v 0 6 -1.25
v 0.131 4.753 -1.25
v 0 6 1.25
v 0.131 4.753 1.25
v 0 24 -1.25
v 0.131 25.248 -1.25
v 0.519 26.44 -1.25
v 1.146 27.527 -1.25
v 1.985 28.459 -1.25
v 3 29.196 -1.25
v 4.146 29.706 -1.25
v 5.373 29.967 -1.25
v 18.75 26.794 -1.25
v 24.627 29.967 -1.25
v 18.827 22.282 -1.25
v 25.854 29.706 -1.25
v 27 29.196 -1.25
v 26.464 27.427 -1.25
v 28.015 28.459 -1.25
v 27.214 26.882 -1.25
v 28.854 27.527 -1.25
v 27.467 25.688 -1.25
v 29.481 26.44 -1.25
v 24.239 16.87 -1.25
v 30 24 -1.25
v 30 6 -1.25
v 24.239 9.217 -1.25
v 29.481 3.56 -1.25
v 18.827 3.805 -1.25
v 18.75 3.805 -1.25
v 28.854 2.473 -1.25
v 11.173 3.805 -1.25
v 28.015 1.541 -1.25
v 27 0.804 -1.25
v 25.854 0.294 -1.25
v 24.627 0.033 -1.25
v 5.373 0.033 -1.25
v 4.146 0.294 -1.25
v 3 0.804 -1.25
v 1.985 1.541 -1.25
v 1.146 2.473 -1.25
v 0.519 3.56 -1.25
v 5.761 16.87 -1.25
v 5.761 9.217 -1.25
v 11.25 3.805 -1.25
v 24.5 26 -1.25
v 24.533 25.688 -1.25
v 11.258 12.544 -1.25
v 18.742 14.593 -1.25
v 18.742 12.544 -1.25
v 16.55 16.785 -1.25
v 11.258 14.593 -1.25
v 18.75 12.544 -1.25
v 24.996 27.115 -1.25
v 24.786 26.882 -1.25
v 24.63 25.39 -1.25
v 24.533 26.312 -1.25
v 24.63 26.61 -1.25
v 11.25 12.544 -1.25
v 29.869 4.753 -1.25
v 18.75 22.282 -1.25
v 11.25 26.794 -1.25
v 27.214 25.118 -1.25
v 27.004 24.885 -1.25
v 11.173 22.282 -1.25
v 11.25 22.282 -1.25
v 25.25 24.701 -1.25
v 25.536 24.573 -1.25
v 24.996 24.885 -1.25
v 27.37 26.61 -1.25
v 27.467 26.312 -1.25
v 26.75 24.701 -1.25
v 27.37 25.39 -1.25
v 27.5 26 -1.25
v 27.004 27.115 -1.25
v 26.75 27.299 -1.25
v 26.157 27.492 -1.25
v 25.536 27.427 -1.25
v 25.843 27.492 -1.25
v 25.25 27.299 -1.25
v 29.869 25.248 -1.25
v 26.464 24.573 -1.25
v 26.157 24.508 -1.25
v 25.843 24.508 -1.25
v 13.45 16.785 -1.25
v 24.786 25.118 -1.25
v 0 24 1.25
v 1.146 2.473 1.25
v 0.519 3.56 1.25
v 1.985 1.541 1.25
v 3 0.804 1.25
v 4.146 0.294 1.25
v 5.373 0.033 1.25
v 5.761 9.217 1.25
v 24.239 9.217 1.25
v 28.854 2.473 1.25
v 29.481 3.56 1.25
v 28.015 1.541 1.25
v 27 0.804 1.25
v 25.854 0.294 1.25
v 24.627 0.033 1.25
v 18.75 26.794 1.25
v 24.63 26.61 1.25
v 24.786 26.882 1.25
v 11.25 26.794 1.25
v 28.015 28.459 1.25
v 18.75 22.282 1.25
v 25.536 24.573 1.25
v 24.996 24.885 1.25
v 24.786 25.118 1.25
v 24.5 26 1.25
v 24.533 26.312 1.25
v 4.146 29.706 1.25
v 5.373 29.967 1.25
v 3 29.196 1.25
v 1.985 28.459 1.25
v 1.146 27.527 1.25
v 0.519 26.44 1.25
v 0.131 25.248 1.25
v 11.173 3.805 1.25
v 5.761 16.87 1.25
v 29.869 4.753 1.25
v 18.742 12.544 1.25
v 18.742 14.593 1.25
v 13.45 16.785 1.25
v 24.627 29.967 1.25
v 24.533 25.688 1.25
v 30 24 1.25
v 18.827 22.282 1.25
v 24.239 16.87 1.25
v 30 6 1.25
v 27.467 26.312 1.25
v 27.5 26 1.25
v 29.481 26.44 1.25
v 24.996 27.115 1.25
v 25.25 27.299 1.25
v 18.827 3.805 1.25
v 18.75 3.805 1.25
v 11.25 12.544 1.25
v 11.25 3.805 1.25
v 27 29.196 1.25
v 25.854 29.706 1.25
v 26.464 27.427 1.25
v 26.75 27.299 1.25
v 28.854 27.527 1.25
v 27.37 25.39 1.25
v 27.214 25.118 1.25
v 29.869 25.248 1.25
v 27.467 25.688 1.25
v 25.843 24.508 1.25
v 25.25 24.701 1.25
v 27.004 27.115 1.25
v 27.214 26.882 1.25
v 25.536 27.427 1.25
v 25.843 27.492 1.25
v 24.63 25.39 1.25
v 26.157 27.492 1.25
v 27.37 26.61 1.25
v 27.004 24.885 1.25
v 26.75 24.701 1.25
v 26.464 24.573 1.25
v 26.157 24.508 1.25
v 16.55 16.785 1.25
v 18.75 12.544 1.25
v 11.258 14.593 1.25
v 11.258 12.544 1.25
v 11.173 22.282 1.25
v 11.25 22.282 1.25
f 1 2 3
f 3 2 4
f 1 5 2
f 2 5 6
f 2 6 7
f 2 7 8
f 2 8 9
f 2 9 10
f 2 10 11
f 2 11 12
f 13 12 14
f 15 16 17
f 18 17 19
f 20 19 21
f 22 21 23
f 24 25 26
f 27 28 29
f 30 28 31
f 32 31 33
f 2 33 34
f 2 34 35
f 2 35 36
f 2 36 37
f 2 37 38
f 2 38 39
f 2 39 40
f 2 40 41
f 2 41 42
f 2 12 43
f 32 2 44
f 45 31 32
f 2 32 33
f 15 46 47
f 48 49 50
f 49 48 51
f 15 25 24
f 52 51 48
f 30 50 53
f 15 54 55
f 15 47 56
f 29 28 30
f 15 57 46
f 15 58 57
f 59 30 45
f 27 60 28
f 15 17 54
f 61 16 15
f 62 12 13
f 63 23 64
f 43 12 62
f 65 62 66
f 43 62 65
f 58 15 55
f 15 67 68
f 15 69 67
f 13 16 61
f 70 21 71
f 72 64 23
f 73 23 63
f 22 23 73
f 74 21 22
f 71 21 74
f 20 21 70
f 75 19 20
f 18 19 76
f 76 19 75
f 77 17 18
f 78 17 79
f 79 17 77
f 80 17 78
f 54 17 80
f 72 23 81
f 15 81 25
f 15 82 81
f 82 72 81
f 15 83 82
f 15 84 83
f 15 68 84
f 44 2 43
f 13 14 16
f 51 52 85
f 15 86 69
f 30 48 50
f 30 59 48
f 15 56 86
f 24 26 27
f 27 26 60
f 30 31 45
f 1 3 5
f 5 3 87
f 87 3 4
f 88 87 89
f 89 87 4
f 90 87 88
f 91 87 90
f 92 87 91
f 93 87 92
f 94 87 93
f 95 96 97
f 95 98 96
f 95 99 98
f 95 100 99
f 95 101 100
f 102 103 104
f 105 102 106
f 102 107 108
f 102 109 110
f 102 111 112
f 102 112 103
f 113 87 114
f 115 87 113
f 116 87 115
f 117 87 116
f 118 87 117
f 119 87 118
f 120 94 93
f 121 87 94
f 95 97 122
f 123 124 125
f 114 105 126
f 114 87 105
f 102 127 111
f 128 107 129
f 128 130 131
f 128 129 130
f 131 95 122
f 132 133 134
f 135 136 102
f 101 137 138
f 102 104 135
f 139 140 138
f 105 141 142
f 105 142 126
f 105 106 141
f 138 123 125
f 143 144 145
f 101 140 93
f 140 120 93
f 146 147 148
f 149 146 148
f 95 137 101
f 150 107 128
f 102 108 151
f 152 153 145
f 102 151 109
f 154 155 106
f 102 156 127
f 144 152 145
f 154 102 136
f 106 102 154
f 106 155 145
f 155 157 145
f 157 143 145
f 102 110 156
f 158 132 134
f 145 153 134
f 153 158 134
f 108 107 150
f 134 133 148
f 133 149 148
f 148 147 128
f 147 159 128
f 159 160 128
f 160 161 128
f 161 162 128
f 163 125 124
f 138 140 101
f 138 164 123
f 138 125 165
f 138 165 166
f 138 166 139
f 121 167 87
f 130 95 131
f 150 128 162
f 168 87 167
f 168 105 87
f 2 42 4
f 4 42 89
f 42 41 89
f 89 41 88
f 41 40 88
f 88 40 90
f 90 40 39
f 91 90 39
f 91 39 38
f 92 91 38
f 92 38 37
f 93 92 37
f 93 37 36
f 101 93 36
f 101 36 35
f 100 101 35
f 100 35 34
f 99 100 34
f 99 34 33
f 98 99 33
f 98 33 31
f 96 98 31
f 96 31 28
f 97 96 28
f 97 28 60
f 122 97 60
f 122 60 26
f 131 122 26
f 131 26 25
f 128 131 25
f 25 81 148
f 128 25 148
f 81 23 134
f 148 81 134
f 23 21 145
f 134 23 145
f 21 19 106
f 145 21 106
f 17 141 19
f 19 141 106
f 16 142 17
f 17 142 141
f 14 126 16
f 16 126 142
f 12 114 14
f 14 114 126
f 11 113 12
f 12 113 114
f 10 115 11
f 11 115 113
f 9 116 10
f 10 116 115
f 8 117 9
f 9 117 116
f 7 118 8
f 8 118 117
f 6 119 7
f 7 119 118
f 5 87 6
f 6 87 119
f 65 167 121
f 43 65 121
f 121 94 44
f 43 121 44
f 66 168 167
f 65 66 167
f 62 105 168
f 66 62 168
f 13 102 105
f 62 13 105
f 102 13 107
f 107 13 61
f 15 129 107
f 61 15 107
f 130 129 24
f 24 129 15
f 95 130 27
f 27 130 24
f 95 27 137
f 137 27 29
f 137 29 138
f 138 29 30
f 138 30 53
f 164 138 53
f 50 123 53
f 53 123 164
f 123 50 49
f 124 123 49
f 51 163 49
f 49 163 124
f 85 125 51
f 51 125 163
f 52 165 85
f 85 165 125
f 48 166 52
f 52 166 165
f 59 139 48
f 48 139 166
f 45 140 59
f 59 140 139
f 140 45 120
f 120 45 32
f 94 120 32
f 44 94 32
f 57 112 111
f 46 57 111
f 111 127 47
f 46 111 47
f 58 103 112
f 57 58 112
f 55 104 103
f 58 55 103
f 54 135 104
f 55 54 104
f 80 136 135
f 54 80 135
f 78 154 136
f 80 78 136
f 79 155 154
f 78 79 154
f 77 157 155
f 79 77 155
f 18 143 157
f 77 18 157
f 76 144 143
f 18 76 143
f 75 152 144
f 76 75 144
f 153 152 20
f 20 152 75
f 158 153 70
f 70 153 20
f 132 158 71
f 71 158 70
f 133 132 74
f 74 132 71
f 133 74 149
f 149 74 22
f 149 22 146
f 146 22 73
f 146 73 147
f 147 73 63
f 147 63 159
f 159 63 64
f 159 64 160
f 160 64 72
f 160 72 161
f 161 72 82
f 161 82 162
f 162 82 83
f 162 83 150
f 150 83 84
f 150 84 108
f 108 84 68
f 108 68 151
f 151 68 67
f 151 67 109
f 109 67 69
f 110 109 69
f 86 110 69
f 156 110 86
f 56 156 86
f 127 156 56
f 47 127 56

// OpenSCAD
thickness = 2.5;
size = 30;
corner_radius = 6;
hole_radius = 1.5;
$fn = 30;

difference() {
  hull() {
    translate([corner_radius, corner_radius, 0])
      cylinder(r = corner_radius, h = thickness, center = true);
    translate([size-corner_radius, corner_radius, 0])
      cylinder(r = corner_radius, h = thickness, center = true);
    translate([size-corner_radius, size-corner_radius, 0])
      cylinder(r = corner_radius, h = thickness, center = true);
    translate([corner_radius, size-corner_radius, 0])
      cylinder(r = corner_radius, h = thickness, center = true);
  }
  translate([size/2, size/2.3, 0]) {
    difference() {
      rotate([0,0,22.5])
        cylinder(r = size/3, h = thickness+2, center = true, $fn = 8);
      translate([0,-(1+size/6),-1])
        cube([size/4, 1+size/3, thickness+3], center = true);
      rotate([0,0,22.5])
        cylinder(r = 1.08*size/8, h = thickness+3, $fn = 8, center = true);
    }
    translate([0,size/3,-1])
      cube([size/4, size/4, thickness+3], center = true);
  }
  translate([size-corner_radius+2, size-corner_radius+2, 0])
  cylinder(r = hole_radius, h = thickness+2, center = true);
}
